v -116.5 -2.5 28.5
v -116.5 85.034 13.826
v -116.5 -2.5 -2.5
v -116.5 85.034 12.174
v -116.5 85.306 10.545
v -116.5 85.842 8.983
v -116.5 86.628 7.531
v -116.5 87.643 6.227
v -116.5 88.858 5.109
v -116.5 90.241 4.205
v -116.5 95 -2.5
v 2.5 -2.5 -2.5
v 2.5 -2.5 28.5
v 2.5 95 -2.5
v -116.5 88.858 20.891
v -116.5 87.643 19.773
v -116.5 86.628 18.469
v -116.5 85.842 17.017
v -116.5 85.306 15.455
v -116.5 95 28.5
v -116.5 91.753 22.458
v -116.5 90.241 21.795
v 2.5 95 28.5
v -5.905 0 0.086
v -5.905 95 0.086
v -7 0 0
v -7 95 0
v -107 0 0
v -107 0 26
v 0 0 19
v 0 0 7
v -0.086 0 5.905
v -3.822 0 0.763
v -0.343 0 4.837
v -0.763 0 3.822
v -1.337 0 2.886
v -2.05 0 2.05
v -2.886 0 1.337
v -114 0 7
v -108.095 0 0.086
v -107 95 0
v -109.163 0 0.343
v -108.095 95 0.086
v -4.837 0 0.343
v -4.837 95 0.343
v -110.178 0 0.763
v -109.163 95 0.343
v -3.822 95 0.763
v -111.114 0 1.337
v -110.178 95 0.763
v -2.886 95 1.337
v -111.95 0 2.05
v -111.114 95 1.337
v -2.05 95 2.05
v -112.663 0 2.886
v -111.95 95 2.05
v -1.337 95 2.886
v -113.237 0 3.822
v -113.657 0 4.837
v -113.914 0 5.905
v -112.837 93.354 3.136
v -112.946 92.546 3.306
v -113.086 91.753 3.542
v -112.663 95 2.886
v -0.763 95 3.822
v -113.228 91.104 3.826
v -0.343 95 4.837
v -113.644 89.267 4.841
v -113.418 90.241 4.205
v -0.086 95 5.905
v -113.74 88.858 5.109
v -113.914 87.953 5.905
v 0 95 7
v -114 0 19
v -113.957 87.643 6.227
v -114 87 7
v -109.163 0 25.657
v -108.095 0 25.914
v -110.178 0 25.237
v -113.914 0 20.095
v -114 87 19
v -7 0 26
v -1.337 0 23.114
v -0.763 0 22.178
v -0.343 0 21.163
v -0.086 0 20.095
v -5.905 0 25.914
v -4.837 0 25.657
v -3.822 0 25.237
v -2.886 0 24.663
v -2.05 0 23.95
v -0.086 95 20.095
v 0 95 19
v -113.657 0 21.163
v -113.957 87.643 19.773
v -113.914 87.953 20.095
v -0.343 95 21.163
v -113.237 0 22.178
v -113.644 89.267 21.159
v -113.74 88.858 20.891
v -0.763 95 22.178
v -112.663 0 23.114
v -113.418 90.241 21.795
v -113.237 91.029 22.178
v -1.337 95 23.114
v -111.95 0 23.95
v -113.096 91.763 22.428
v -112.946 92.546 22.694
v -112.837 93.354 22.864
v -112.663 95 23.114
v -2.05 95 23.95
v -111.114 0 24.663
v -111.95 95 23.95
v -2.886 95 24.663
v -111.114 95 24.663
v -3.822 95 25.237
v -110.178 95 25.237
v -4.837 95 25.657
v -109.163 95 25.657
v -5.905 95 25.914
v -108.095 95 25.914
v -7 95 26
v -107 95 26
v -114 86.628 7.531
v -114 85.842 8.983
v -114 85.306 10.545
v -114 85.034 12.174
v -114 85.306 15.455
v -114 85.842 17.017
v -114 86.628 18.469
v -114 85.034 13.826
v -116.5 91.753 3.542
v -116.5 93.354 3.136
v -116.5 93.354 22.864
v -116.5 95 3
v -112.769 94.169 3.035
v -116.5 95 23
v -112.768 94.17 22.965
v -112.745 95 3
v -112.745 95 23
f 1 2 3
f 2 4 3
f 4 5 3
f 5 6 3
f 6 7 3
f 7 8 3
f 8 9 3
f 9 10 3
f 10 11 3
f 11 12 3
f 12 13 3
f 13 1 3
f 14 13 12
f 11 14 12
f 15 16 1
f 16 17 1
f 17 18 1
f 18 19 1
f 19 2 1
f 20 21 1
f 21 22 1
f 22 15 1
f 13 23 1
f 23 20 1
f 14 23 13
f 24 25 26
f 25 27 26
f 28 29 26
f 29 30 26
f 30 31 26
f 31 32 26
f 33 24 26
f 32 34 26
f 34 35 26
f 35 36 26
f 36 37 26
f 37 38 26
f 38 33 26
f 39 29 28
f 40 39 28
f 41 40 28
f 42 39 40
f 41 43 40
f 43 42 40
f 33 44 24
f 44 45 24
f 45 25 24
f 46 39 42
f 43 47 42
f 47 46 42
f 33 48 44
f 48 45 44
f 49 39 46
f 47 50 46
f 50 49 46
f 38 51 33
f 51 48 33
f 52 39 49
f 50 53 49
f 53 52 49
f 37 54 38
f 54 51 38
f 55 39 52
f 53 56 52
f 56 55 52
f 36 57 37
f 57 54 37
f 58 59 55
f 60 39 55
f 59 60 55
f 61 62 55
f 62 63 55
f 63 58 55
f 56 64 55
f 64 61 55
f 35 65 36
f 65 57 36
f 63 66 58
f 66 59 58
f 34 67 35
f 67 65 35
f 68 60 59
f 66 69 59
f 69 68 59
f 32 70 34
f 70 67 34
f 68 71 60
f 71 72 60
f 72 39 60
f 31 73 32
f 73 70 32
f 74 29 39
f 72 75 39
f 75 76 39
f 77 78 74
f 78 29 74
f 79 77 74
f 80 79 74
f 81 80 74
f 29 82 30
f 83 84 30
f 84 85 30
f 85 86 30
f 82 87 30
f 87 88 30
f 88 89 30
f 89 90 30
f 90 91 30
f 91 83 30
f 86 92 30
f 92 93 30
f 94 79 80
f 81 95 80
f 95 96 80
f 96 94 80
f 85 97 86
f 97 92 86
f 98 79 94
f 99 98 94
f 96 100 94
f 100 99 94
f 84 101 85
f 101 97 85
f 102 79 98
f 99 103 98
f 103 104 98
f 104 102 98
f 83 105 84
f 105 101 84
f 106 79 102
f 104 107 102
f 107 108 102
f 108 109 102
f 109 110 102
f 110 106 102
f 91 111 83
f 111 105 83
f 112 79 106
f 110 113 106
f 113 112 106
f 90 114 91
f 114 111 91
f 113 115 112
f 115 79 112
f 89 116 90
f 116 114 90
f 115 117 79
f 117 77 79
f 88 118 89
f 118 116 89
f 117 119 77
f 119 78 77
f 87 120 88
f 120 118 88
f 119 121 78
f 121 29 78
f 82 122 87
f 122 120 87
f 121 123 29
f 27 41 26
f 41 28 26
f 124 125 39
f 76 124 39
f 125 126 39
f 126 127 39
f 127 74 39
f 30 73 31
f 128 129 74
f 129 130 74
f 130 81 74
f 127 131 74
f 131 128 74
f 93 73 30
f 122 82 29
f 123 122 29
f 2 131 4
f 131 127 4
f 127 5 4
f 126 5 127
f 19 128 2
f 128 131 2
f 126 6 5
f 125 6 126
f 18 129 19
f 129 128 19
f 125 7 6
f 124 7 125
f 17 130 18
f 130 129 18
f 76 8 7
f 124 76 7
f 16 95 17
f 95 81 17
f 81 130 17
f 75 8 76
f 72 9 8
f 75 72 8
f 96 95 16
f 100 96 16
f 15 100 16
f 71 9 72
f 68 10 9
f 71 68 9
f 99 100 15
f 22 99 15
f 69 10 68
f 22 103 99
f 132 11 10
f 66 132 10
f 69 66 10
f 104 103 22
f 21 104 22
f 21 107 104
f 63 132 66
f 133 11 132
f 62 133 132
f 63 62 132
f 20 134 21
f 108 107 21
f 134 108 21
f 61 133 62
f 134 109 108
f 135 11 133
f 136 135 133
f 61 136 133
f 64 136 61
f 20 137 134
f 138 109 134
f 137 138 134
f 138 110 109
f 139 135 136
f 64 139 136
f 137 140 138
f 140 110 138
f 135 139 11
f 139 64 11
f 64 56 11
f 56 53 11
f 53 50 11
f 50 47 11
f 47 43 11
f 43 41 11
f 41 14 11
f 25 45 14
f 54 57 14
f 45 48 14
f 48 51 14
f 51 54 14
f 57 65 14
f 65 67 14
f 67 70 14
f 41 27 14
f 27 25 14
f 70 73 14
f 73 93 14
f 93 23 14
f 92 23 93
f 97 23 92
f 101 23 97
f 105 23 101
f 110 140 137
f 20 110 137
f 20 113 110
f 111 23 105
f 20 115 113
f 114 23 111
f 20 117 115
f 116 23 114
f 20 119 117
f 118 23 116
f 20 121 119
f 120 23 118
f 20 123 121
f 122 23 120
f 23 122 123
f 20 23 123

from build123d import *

# Parameters (mm, degrees)
SKETCH1_W               = 119
SKETCH1_H               = 31
SKETCH1_W_2             = 114
SKETCH1_H_2             = 26
EXTRUDE_THIN1_DEPTH     = 95
SKETCH2_W               = 119
SKETCH2_H               = 31
BOSS_EXTRUDE1_DEPTH     = 2.5
CUT_EXTRUDE1_DEPTH      = 155.913685645
CUT_EXTRUDE1_DEPTH_BACK = 2.5
FILLET2_R               = 7


with BuildPart() as part:
    # Sketch1 → Extrude-Thin1 (new body)
    with BuildSketch(Plane(origin=(0, 0, 0), x_dir=(1, 0, 0), z_dir=(0, 1, 0))):
        with Locations((-57, -13)):
            Rectangle(SKETCH1_W, SKETCH1_H)
        with Locations((-57, -13)):
            Rectangle(SKETCH1_W_2, SKETCH1_H_2, mode=Mode.SUBTRACT)
    extrude(amount=EXTRUDE_THIN1_DEPTH)

    # Sketch2 → Boss-Extrude1 (add)
    with BuildSketch(Plane.XZ):
        with Locations((-57, 13)):
            Rectangle(SKETCH2_W, SKETCH2_H)
    extrude(amount=BOSS_EXTRUDE1_DEPTH)

    # Sketch3 → Cut-Extrude1 (cut, two sides: drawn at the far end of the back side and taken through both)
    with BuildSketch(Plane.ZY.offset(116.5).offset(-CUT_EXTRUDE1_DEPTH_BACK)):
        with BuildLine():
            Line((3, 306.558924387), (3, 95))
            ThreePointArc((3, 95), (13, 85), (23, 95))
            Line((23, 95), (23, 306.558924387))
            Line((23, 306.558924387), (23, 729.676773161))
            Line((23, 729.676773161), (3, 729.676773161))
            Line((3, 729.676773161), (3, 306.558924387))
        make_face()
    extrude(amount=CUT_EXTRUDE1_DEPTH + CUT_EXTRUDE1_DEPTH_BACK, mode=Mode.SUBTRACT)

    # Fillet2
    # the kernel refuses this fillet: 7 mm, written as the material it adds along each edge
    with BuildSketch(Plane(origin=(0, 0, 26), x_dir=(-1, 0, 0), z_dir=(0, 1, 0)), Plane(origin=(0, 0, 0), x_dir=(0, 0, 1), z_dir=(0, 1, 0))) as fillet2_piece_1:
        with BuildLine():
            CenterArc((FILLET2_R, -FILLET2_R), FILLET2_R, 90, 90)
            Line((0, -FILLET2_R), (0, 0))
            Line((0, 0), (FILLET2_R, 0))
        make_face()
    extrude(amount=95)
    with BuildSketch(Plane(origin=(-114, 0, 26), x_dir=(0, 0, -1), z_dir=(0, 1, 0))) as fillet2_piece_2_section:
        with BuildLine():
            CenterArc((FILLET2_R, -FILLET2_R), FILLET2_R, 90, 90)
            Line((0, -FILLET2_R), (0, 0))
            Line((0, 0), (FILLET2_R, 0))
        make_face()
    fillet2_piece_2 = extrude(amount=95, mode=Mode.PRIVATE)
    fillet2_piece_2 = fillet2_piece_2 - Plane(origin=(-112.403974481, 95, 13), x_dir=(0, 0, -1), z_dir=(1, 0, 0)) * Cylinder(10, 218, mode=Mode.PRIVATE)
    add(fillet2_piece_2)
    with BuildSketch(Plane(origin=(-114, 0, 0), x_dir=(0, 0, 1), z_dir=(0, 1, 0))) as fillet2_piece_3_section:
        with BuildLine():
            CenterArc((FILLET2_R, FILLET2_R), FILLET2_R, 180, 90)
            Line((0, FILLET2_R), (0, 0))
            Line((0, 0), (FILLET2_R, 0))
        make_face()
    fillet2_piece_3 = extrude(amount=95, mode=Mode.PRIVATE)
    fillet2_piece_3 = fillet2_piece_3 - Plane(origin=(-112.403974465, 95, 13), x_dir=(0, 0, -1), z_dir=(1, 0, 0)) * Cylinder(10, 218, mode=Mode.PRIVATE)
    add(fillet2_piece_3)


solid = part.part
